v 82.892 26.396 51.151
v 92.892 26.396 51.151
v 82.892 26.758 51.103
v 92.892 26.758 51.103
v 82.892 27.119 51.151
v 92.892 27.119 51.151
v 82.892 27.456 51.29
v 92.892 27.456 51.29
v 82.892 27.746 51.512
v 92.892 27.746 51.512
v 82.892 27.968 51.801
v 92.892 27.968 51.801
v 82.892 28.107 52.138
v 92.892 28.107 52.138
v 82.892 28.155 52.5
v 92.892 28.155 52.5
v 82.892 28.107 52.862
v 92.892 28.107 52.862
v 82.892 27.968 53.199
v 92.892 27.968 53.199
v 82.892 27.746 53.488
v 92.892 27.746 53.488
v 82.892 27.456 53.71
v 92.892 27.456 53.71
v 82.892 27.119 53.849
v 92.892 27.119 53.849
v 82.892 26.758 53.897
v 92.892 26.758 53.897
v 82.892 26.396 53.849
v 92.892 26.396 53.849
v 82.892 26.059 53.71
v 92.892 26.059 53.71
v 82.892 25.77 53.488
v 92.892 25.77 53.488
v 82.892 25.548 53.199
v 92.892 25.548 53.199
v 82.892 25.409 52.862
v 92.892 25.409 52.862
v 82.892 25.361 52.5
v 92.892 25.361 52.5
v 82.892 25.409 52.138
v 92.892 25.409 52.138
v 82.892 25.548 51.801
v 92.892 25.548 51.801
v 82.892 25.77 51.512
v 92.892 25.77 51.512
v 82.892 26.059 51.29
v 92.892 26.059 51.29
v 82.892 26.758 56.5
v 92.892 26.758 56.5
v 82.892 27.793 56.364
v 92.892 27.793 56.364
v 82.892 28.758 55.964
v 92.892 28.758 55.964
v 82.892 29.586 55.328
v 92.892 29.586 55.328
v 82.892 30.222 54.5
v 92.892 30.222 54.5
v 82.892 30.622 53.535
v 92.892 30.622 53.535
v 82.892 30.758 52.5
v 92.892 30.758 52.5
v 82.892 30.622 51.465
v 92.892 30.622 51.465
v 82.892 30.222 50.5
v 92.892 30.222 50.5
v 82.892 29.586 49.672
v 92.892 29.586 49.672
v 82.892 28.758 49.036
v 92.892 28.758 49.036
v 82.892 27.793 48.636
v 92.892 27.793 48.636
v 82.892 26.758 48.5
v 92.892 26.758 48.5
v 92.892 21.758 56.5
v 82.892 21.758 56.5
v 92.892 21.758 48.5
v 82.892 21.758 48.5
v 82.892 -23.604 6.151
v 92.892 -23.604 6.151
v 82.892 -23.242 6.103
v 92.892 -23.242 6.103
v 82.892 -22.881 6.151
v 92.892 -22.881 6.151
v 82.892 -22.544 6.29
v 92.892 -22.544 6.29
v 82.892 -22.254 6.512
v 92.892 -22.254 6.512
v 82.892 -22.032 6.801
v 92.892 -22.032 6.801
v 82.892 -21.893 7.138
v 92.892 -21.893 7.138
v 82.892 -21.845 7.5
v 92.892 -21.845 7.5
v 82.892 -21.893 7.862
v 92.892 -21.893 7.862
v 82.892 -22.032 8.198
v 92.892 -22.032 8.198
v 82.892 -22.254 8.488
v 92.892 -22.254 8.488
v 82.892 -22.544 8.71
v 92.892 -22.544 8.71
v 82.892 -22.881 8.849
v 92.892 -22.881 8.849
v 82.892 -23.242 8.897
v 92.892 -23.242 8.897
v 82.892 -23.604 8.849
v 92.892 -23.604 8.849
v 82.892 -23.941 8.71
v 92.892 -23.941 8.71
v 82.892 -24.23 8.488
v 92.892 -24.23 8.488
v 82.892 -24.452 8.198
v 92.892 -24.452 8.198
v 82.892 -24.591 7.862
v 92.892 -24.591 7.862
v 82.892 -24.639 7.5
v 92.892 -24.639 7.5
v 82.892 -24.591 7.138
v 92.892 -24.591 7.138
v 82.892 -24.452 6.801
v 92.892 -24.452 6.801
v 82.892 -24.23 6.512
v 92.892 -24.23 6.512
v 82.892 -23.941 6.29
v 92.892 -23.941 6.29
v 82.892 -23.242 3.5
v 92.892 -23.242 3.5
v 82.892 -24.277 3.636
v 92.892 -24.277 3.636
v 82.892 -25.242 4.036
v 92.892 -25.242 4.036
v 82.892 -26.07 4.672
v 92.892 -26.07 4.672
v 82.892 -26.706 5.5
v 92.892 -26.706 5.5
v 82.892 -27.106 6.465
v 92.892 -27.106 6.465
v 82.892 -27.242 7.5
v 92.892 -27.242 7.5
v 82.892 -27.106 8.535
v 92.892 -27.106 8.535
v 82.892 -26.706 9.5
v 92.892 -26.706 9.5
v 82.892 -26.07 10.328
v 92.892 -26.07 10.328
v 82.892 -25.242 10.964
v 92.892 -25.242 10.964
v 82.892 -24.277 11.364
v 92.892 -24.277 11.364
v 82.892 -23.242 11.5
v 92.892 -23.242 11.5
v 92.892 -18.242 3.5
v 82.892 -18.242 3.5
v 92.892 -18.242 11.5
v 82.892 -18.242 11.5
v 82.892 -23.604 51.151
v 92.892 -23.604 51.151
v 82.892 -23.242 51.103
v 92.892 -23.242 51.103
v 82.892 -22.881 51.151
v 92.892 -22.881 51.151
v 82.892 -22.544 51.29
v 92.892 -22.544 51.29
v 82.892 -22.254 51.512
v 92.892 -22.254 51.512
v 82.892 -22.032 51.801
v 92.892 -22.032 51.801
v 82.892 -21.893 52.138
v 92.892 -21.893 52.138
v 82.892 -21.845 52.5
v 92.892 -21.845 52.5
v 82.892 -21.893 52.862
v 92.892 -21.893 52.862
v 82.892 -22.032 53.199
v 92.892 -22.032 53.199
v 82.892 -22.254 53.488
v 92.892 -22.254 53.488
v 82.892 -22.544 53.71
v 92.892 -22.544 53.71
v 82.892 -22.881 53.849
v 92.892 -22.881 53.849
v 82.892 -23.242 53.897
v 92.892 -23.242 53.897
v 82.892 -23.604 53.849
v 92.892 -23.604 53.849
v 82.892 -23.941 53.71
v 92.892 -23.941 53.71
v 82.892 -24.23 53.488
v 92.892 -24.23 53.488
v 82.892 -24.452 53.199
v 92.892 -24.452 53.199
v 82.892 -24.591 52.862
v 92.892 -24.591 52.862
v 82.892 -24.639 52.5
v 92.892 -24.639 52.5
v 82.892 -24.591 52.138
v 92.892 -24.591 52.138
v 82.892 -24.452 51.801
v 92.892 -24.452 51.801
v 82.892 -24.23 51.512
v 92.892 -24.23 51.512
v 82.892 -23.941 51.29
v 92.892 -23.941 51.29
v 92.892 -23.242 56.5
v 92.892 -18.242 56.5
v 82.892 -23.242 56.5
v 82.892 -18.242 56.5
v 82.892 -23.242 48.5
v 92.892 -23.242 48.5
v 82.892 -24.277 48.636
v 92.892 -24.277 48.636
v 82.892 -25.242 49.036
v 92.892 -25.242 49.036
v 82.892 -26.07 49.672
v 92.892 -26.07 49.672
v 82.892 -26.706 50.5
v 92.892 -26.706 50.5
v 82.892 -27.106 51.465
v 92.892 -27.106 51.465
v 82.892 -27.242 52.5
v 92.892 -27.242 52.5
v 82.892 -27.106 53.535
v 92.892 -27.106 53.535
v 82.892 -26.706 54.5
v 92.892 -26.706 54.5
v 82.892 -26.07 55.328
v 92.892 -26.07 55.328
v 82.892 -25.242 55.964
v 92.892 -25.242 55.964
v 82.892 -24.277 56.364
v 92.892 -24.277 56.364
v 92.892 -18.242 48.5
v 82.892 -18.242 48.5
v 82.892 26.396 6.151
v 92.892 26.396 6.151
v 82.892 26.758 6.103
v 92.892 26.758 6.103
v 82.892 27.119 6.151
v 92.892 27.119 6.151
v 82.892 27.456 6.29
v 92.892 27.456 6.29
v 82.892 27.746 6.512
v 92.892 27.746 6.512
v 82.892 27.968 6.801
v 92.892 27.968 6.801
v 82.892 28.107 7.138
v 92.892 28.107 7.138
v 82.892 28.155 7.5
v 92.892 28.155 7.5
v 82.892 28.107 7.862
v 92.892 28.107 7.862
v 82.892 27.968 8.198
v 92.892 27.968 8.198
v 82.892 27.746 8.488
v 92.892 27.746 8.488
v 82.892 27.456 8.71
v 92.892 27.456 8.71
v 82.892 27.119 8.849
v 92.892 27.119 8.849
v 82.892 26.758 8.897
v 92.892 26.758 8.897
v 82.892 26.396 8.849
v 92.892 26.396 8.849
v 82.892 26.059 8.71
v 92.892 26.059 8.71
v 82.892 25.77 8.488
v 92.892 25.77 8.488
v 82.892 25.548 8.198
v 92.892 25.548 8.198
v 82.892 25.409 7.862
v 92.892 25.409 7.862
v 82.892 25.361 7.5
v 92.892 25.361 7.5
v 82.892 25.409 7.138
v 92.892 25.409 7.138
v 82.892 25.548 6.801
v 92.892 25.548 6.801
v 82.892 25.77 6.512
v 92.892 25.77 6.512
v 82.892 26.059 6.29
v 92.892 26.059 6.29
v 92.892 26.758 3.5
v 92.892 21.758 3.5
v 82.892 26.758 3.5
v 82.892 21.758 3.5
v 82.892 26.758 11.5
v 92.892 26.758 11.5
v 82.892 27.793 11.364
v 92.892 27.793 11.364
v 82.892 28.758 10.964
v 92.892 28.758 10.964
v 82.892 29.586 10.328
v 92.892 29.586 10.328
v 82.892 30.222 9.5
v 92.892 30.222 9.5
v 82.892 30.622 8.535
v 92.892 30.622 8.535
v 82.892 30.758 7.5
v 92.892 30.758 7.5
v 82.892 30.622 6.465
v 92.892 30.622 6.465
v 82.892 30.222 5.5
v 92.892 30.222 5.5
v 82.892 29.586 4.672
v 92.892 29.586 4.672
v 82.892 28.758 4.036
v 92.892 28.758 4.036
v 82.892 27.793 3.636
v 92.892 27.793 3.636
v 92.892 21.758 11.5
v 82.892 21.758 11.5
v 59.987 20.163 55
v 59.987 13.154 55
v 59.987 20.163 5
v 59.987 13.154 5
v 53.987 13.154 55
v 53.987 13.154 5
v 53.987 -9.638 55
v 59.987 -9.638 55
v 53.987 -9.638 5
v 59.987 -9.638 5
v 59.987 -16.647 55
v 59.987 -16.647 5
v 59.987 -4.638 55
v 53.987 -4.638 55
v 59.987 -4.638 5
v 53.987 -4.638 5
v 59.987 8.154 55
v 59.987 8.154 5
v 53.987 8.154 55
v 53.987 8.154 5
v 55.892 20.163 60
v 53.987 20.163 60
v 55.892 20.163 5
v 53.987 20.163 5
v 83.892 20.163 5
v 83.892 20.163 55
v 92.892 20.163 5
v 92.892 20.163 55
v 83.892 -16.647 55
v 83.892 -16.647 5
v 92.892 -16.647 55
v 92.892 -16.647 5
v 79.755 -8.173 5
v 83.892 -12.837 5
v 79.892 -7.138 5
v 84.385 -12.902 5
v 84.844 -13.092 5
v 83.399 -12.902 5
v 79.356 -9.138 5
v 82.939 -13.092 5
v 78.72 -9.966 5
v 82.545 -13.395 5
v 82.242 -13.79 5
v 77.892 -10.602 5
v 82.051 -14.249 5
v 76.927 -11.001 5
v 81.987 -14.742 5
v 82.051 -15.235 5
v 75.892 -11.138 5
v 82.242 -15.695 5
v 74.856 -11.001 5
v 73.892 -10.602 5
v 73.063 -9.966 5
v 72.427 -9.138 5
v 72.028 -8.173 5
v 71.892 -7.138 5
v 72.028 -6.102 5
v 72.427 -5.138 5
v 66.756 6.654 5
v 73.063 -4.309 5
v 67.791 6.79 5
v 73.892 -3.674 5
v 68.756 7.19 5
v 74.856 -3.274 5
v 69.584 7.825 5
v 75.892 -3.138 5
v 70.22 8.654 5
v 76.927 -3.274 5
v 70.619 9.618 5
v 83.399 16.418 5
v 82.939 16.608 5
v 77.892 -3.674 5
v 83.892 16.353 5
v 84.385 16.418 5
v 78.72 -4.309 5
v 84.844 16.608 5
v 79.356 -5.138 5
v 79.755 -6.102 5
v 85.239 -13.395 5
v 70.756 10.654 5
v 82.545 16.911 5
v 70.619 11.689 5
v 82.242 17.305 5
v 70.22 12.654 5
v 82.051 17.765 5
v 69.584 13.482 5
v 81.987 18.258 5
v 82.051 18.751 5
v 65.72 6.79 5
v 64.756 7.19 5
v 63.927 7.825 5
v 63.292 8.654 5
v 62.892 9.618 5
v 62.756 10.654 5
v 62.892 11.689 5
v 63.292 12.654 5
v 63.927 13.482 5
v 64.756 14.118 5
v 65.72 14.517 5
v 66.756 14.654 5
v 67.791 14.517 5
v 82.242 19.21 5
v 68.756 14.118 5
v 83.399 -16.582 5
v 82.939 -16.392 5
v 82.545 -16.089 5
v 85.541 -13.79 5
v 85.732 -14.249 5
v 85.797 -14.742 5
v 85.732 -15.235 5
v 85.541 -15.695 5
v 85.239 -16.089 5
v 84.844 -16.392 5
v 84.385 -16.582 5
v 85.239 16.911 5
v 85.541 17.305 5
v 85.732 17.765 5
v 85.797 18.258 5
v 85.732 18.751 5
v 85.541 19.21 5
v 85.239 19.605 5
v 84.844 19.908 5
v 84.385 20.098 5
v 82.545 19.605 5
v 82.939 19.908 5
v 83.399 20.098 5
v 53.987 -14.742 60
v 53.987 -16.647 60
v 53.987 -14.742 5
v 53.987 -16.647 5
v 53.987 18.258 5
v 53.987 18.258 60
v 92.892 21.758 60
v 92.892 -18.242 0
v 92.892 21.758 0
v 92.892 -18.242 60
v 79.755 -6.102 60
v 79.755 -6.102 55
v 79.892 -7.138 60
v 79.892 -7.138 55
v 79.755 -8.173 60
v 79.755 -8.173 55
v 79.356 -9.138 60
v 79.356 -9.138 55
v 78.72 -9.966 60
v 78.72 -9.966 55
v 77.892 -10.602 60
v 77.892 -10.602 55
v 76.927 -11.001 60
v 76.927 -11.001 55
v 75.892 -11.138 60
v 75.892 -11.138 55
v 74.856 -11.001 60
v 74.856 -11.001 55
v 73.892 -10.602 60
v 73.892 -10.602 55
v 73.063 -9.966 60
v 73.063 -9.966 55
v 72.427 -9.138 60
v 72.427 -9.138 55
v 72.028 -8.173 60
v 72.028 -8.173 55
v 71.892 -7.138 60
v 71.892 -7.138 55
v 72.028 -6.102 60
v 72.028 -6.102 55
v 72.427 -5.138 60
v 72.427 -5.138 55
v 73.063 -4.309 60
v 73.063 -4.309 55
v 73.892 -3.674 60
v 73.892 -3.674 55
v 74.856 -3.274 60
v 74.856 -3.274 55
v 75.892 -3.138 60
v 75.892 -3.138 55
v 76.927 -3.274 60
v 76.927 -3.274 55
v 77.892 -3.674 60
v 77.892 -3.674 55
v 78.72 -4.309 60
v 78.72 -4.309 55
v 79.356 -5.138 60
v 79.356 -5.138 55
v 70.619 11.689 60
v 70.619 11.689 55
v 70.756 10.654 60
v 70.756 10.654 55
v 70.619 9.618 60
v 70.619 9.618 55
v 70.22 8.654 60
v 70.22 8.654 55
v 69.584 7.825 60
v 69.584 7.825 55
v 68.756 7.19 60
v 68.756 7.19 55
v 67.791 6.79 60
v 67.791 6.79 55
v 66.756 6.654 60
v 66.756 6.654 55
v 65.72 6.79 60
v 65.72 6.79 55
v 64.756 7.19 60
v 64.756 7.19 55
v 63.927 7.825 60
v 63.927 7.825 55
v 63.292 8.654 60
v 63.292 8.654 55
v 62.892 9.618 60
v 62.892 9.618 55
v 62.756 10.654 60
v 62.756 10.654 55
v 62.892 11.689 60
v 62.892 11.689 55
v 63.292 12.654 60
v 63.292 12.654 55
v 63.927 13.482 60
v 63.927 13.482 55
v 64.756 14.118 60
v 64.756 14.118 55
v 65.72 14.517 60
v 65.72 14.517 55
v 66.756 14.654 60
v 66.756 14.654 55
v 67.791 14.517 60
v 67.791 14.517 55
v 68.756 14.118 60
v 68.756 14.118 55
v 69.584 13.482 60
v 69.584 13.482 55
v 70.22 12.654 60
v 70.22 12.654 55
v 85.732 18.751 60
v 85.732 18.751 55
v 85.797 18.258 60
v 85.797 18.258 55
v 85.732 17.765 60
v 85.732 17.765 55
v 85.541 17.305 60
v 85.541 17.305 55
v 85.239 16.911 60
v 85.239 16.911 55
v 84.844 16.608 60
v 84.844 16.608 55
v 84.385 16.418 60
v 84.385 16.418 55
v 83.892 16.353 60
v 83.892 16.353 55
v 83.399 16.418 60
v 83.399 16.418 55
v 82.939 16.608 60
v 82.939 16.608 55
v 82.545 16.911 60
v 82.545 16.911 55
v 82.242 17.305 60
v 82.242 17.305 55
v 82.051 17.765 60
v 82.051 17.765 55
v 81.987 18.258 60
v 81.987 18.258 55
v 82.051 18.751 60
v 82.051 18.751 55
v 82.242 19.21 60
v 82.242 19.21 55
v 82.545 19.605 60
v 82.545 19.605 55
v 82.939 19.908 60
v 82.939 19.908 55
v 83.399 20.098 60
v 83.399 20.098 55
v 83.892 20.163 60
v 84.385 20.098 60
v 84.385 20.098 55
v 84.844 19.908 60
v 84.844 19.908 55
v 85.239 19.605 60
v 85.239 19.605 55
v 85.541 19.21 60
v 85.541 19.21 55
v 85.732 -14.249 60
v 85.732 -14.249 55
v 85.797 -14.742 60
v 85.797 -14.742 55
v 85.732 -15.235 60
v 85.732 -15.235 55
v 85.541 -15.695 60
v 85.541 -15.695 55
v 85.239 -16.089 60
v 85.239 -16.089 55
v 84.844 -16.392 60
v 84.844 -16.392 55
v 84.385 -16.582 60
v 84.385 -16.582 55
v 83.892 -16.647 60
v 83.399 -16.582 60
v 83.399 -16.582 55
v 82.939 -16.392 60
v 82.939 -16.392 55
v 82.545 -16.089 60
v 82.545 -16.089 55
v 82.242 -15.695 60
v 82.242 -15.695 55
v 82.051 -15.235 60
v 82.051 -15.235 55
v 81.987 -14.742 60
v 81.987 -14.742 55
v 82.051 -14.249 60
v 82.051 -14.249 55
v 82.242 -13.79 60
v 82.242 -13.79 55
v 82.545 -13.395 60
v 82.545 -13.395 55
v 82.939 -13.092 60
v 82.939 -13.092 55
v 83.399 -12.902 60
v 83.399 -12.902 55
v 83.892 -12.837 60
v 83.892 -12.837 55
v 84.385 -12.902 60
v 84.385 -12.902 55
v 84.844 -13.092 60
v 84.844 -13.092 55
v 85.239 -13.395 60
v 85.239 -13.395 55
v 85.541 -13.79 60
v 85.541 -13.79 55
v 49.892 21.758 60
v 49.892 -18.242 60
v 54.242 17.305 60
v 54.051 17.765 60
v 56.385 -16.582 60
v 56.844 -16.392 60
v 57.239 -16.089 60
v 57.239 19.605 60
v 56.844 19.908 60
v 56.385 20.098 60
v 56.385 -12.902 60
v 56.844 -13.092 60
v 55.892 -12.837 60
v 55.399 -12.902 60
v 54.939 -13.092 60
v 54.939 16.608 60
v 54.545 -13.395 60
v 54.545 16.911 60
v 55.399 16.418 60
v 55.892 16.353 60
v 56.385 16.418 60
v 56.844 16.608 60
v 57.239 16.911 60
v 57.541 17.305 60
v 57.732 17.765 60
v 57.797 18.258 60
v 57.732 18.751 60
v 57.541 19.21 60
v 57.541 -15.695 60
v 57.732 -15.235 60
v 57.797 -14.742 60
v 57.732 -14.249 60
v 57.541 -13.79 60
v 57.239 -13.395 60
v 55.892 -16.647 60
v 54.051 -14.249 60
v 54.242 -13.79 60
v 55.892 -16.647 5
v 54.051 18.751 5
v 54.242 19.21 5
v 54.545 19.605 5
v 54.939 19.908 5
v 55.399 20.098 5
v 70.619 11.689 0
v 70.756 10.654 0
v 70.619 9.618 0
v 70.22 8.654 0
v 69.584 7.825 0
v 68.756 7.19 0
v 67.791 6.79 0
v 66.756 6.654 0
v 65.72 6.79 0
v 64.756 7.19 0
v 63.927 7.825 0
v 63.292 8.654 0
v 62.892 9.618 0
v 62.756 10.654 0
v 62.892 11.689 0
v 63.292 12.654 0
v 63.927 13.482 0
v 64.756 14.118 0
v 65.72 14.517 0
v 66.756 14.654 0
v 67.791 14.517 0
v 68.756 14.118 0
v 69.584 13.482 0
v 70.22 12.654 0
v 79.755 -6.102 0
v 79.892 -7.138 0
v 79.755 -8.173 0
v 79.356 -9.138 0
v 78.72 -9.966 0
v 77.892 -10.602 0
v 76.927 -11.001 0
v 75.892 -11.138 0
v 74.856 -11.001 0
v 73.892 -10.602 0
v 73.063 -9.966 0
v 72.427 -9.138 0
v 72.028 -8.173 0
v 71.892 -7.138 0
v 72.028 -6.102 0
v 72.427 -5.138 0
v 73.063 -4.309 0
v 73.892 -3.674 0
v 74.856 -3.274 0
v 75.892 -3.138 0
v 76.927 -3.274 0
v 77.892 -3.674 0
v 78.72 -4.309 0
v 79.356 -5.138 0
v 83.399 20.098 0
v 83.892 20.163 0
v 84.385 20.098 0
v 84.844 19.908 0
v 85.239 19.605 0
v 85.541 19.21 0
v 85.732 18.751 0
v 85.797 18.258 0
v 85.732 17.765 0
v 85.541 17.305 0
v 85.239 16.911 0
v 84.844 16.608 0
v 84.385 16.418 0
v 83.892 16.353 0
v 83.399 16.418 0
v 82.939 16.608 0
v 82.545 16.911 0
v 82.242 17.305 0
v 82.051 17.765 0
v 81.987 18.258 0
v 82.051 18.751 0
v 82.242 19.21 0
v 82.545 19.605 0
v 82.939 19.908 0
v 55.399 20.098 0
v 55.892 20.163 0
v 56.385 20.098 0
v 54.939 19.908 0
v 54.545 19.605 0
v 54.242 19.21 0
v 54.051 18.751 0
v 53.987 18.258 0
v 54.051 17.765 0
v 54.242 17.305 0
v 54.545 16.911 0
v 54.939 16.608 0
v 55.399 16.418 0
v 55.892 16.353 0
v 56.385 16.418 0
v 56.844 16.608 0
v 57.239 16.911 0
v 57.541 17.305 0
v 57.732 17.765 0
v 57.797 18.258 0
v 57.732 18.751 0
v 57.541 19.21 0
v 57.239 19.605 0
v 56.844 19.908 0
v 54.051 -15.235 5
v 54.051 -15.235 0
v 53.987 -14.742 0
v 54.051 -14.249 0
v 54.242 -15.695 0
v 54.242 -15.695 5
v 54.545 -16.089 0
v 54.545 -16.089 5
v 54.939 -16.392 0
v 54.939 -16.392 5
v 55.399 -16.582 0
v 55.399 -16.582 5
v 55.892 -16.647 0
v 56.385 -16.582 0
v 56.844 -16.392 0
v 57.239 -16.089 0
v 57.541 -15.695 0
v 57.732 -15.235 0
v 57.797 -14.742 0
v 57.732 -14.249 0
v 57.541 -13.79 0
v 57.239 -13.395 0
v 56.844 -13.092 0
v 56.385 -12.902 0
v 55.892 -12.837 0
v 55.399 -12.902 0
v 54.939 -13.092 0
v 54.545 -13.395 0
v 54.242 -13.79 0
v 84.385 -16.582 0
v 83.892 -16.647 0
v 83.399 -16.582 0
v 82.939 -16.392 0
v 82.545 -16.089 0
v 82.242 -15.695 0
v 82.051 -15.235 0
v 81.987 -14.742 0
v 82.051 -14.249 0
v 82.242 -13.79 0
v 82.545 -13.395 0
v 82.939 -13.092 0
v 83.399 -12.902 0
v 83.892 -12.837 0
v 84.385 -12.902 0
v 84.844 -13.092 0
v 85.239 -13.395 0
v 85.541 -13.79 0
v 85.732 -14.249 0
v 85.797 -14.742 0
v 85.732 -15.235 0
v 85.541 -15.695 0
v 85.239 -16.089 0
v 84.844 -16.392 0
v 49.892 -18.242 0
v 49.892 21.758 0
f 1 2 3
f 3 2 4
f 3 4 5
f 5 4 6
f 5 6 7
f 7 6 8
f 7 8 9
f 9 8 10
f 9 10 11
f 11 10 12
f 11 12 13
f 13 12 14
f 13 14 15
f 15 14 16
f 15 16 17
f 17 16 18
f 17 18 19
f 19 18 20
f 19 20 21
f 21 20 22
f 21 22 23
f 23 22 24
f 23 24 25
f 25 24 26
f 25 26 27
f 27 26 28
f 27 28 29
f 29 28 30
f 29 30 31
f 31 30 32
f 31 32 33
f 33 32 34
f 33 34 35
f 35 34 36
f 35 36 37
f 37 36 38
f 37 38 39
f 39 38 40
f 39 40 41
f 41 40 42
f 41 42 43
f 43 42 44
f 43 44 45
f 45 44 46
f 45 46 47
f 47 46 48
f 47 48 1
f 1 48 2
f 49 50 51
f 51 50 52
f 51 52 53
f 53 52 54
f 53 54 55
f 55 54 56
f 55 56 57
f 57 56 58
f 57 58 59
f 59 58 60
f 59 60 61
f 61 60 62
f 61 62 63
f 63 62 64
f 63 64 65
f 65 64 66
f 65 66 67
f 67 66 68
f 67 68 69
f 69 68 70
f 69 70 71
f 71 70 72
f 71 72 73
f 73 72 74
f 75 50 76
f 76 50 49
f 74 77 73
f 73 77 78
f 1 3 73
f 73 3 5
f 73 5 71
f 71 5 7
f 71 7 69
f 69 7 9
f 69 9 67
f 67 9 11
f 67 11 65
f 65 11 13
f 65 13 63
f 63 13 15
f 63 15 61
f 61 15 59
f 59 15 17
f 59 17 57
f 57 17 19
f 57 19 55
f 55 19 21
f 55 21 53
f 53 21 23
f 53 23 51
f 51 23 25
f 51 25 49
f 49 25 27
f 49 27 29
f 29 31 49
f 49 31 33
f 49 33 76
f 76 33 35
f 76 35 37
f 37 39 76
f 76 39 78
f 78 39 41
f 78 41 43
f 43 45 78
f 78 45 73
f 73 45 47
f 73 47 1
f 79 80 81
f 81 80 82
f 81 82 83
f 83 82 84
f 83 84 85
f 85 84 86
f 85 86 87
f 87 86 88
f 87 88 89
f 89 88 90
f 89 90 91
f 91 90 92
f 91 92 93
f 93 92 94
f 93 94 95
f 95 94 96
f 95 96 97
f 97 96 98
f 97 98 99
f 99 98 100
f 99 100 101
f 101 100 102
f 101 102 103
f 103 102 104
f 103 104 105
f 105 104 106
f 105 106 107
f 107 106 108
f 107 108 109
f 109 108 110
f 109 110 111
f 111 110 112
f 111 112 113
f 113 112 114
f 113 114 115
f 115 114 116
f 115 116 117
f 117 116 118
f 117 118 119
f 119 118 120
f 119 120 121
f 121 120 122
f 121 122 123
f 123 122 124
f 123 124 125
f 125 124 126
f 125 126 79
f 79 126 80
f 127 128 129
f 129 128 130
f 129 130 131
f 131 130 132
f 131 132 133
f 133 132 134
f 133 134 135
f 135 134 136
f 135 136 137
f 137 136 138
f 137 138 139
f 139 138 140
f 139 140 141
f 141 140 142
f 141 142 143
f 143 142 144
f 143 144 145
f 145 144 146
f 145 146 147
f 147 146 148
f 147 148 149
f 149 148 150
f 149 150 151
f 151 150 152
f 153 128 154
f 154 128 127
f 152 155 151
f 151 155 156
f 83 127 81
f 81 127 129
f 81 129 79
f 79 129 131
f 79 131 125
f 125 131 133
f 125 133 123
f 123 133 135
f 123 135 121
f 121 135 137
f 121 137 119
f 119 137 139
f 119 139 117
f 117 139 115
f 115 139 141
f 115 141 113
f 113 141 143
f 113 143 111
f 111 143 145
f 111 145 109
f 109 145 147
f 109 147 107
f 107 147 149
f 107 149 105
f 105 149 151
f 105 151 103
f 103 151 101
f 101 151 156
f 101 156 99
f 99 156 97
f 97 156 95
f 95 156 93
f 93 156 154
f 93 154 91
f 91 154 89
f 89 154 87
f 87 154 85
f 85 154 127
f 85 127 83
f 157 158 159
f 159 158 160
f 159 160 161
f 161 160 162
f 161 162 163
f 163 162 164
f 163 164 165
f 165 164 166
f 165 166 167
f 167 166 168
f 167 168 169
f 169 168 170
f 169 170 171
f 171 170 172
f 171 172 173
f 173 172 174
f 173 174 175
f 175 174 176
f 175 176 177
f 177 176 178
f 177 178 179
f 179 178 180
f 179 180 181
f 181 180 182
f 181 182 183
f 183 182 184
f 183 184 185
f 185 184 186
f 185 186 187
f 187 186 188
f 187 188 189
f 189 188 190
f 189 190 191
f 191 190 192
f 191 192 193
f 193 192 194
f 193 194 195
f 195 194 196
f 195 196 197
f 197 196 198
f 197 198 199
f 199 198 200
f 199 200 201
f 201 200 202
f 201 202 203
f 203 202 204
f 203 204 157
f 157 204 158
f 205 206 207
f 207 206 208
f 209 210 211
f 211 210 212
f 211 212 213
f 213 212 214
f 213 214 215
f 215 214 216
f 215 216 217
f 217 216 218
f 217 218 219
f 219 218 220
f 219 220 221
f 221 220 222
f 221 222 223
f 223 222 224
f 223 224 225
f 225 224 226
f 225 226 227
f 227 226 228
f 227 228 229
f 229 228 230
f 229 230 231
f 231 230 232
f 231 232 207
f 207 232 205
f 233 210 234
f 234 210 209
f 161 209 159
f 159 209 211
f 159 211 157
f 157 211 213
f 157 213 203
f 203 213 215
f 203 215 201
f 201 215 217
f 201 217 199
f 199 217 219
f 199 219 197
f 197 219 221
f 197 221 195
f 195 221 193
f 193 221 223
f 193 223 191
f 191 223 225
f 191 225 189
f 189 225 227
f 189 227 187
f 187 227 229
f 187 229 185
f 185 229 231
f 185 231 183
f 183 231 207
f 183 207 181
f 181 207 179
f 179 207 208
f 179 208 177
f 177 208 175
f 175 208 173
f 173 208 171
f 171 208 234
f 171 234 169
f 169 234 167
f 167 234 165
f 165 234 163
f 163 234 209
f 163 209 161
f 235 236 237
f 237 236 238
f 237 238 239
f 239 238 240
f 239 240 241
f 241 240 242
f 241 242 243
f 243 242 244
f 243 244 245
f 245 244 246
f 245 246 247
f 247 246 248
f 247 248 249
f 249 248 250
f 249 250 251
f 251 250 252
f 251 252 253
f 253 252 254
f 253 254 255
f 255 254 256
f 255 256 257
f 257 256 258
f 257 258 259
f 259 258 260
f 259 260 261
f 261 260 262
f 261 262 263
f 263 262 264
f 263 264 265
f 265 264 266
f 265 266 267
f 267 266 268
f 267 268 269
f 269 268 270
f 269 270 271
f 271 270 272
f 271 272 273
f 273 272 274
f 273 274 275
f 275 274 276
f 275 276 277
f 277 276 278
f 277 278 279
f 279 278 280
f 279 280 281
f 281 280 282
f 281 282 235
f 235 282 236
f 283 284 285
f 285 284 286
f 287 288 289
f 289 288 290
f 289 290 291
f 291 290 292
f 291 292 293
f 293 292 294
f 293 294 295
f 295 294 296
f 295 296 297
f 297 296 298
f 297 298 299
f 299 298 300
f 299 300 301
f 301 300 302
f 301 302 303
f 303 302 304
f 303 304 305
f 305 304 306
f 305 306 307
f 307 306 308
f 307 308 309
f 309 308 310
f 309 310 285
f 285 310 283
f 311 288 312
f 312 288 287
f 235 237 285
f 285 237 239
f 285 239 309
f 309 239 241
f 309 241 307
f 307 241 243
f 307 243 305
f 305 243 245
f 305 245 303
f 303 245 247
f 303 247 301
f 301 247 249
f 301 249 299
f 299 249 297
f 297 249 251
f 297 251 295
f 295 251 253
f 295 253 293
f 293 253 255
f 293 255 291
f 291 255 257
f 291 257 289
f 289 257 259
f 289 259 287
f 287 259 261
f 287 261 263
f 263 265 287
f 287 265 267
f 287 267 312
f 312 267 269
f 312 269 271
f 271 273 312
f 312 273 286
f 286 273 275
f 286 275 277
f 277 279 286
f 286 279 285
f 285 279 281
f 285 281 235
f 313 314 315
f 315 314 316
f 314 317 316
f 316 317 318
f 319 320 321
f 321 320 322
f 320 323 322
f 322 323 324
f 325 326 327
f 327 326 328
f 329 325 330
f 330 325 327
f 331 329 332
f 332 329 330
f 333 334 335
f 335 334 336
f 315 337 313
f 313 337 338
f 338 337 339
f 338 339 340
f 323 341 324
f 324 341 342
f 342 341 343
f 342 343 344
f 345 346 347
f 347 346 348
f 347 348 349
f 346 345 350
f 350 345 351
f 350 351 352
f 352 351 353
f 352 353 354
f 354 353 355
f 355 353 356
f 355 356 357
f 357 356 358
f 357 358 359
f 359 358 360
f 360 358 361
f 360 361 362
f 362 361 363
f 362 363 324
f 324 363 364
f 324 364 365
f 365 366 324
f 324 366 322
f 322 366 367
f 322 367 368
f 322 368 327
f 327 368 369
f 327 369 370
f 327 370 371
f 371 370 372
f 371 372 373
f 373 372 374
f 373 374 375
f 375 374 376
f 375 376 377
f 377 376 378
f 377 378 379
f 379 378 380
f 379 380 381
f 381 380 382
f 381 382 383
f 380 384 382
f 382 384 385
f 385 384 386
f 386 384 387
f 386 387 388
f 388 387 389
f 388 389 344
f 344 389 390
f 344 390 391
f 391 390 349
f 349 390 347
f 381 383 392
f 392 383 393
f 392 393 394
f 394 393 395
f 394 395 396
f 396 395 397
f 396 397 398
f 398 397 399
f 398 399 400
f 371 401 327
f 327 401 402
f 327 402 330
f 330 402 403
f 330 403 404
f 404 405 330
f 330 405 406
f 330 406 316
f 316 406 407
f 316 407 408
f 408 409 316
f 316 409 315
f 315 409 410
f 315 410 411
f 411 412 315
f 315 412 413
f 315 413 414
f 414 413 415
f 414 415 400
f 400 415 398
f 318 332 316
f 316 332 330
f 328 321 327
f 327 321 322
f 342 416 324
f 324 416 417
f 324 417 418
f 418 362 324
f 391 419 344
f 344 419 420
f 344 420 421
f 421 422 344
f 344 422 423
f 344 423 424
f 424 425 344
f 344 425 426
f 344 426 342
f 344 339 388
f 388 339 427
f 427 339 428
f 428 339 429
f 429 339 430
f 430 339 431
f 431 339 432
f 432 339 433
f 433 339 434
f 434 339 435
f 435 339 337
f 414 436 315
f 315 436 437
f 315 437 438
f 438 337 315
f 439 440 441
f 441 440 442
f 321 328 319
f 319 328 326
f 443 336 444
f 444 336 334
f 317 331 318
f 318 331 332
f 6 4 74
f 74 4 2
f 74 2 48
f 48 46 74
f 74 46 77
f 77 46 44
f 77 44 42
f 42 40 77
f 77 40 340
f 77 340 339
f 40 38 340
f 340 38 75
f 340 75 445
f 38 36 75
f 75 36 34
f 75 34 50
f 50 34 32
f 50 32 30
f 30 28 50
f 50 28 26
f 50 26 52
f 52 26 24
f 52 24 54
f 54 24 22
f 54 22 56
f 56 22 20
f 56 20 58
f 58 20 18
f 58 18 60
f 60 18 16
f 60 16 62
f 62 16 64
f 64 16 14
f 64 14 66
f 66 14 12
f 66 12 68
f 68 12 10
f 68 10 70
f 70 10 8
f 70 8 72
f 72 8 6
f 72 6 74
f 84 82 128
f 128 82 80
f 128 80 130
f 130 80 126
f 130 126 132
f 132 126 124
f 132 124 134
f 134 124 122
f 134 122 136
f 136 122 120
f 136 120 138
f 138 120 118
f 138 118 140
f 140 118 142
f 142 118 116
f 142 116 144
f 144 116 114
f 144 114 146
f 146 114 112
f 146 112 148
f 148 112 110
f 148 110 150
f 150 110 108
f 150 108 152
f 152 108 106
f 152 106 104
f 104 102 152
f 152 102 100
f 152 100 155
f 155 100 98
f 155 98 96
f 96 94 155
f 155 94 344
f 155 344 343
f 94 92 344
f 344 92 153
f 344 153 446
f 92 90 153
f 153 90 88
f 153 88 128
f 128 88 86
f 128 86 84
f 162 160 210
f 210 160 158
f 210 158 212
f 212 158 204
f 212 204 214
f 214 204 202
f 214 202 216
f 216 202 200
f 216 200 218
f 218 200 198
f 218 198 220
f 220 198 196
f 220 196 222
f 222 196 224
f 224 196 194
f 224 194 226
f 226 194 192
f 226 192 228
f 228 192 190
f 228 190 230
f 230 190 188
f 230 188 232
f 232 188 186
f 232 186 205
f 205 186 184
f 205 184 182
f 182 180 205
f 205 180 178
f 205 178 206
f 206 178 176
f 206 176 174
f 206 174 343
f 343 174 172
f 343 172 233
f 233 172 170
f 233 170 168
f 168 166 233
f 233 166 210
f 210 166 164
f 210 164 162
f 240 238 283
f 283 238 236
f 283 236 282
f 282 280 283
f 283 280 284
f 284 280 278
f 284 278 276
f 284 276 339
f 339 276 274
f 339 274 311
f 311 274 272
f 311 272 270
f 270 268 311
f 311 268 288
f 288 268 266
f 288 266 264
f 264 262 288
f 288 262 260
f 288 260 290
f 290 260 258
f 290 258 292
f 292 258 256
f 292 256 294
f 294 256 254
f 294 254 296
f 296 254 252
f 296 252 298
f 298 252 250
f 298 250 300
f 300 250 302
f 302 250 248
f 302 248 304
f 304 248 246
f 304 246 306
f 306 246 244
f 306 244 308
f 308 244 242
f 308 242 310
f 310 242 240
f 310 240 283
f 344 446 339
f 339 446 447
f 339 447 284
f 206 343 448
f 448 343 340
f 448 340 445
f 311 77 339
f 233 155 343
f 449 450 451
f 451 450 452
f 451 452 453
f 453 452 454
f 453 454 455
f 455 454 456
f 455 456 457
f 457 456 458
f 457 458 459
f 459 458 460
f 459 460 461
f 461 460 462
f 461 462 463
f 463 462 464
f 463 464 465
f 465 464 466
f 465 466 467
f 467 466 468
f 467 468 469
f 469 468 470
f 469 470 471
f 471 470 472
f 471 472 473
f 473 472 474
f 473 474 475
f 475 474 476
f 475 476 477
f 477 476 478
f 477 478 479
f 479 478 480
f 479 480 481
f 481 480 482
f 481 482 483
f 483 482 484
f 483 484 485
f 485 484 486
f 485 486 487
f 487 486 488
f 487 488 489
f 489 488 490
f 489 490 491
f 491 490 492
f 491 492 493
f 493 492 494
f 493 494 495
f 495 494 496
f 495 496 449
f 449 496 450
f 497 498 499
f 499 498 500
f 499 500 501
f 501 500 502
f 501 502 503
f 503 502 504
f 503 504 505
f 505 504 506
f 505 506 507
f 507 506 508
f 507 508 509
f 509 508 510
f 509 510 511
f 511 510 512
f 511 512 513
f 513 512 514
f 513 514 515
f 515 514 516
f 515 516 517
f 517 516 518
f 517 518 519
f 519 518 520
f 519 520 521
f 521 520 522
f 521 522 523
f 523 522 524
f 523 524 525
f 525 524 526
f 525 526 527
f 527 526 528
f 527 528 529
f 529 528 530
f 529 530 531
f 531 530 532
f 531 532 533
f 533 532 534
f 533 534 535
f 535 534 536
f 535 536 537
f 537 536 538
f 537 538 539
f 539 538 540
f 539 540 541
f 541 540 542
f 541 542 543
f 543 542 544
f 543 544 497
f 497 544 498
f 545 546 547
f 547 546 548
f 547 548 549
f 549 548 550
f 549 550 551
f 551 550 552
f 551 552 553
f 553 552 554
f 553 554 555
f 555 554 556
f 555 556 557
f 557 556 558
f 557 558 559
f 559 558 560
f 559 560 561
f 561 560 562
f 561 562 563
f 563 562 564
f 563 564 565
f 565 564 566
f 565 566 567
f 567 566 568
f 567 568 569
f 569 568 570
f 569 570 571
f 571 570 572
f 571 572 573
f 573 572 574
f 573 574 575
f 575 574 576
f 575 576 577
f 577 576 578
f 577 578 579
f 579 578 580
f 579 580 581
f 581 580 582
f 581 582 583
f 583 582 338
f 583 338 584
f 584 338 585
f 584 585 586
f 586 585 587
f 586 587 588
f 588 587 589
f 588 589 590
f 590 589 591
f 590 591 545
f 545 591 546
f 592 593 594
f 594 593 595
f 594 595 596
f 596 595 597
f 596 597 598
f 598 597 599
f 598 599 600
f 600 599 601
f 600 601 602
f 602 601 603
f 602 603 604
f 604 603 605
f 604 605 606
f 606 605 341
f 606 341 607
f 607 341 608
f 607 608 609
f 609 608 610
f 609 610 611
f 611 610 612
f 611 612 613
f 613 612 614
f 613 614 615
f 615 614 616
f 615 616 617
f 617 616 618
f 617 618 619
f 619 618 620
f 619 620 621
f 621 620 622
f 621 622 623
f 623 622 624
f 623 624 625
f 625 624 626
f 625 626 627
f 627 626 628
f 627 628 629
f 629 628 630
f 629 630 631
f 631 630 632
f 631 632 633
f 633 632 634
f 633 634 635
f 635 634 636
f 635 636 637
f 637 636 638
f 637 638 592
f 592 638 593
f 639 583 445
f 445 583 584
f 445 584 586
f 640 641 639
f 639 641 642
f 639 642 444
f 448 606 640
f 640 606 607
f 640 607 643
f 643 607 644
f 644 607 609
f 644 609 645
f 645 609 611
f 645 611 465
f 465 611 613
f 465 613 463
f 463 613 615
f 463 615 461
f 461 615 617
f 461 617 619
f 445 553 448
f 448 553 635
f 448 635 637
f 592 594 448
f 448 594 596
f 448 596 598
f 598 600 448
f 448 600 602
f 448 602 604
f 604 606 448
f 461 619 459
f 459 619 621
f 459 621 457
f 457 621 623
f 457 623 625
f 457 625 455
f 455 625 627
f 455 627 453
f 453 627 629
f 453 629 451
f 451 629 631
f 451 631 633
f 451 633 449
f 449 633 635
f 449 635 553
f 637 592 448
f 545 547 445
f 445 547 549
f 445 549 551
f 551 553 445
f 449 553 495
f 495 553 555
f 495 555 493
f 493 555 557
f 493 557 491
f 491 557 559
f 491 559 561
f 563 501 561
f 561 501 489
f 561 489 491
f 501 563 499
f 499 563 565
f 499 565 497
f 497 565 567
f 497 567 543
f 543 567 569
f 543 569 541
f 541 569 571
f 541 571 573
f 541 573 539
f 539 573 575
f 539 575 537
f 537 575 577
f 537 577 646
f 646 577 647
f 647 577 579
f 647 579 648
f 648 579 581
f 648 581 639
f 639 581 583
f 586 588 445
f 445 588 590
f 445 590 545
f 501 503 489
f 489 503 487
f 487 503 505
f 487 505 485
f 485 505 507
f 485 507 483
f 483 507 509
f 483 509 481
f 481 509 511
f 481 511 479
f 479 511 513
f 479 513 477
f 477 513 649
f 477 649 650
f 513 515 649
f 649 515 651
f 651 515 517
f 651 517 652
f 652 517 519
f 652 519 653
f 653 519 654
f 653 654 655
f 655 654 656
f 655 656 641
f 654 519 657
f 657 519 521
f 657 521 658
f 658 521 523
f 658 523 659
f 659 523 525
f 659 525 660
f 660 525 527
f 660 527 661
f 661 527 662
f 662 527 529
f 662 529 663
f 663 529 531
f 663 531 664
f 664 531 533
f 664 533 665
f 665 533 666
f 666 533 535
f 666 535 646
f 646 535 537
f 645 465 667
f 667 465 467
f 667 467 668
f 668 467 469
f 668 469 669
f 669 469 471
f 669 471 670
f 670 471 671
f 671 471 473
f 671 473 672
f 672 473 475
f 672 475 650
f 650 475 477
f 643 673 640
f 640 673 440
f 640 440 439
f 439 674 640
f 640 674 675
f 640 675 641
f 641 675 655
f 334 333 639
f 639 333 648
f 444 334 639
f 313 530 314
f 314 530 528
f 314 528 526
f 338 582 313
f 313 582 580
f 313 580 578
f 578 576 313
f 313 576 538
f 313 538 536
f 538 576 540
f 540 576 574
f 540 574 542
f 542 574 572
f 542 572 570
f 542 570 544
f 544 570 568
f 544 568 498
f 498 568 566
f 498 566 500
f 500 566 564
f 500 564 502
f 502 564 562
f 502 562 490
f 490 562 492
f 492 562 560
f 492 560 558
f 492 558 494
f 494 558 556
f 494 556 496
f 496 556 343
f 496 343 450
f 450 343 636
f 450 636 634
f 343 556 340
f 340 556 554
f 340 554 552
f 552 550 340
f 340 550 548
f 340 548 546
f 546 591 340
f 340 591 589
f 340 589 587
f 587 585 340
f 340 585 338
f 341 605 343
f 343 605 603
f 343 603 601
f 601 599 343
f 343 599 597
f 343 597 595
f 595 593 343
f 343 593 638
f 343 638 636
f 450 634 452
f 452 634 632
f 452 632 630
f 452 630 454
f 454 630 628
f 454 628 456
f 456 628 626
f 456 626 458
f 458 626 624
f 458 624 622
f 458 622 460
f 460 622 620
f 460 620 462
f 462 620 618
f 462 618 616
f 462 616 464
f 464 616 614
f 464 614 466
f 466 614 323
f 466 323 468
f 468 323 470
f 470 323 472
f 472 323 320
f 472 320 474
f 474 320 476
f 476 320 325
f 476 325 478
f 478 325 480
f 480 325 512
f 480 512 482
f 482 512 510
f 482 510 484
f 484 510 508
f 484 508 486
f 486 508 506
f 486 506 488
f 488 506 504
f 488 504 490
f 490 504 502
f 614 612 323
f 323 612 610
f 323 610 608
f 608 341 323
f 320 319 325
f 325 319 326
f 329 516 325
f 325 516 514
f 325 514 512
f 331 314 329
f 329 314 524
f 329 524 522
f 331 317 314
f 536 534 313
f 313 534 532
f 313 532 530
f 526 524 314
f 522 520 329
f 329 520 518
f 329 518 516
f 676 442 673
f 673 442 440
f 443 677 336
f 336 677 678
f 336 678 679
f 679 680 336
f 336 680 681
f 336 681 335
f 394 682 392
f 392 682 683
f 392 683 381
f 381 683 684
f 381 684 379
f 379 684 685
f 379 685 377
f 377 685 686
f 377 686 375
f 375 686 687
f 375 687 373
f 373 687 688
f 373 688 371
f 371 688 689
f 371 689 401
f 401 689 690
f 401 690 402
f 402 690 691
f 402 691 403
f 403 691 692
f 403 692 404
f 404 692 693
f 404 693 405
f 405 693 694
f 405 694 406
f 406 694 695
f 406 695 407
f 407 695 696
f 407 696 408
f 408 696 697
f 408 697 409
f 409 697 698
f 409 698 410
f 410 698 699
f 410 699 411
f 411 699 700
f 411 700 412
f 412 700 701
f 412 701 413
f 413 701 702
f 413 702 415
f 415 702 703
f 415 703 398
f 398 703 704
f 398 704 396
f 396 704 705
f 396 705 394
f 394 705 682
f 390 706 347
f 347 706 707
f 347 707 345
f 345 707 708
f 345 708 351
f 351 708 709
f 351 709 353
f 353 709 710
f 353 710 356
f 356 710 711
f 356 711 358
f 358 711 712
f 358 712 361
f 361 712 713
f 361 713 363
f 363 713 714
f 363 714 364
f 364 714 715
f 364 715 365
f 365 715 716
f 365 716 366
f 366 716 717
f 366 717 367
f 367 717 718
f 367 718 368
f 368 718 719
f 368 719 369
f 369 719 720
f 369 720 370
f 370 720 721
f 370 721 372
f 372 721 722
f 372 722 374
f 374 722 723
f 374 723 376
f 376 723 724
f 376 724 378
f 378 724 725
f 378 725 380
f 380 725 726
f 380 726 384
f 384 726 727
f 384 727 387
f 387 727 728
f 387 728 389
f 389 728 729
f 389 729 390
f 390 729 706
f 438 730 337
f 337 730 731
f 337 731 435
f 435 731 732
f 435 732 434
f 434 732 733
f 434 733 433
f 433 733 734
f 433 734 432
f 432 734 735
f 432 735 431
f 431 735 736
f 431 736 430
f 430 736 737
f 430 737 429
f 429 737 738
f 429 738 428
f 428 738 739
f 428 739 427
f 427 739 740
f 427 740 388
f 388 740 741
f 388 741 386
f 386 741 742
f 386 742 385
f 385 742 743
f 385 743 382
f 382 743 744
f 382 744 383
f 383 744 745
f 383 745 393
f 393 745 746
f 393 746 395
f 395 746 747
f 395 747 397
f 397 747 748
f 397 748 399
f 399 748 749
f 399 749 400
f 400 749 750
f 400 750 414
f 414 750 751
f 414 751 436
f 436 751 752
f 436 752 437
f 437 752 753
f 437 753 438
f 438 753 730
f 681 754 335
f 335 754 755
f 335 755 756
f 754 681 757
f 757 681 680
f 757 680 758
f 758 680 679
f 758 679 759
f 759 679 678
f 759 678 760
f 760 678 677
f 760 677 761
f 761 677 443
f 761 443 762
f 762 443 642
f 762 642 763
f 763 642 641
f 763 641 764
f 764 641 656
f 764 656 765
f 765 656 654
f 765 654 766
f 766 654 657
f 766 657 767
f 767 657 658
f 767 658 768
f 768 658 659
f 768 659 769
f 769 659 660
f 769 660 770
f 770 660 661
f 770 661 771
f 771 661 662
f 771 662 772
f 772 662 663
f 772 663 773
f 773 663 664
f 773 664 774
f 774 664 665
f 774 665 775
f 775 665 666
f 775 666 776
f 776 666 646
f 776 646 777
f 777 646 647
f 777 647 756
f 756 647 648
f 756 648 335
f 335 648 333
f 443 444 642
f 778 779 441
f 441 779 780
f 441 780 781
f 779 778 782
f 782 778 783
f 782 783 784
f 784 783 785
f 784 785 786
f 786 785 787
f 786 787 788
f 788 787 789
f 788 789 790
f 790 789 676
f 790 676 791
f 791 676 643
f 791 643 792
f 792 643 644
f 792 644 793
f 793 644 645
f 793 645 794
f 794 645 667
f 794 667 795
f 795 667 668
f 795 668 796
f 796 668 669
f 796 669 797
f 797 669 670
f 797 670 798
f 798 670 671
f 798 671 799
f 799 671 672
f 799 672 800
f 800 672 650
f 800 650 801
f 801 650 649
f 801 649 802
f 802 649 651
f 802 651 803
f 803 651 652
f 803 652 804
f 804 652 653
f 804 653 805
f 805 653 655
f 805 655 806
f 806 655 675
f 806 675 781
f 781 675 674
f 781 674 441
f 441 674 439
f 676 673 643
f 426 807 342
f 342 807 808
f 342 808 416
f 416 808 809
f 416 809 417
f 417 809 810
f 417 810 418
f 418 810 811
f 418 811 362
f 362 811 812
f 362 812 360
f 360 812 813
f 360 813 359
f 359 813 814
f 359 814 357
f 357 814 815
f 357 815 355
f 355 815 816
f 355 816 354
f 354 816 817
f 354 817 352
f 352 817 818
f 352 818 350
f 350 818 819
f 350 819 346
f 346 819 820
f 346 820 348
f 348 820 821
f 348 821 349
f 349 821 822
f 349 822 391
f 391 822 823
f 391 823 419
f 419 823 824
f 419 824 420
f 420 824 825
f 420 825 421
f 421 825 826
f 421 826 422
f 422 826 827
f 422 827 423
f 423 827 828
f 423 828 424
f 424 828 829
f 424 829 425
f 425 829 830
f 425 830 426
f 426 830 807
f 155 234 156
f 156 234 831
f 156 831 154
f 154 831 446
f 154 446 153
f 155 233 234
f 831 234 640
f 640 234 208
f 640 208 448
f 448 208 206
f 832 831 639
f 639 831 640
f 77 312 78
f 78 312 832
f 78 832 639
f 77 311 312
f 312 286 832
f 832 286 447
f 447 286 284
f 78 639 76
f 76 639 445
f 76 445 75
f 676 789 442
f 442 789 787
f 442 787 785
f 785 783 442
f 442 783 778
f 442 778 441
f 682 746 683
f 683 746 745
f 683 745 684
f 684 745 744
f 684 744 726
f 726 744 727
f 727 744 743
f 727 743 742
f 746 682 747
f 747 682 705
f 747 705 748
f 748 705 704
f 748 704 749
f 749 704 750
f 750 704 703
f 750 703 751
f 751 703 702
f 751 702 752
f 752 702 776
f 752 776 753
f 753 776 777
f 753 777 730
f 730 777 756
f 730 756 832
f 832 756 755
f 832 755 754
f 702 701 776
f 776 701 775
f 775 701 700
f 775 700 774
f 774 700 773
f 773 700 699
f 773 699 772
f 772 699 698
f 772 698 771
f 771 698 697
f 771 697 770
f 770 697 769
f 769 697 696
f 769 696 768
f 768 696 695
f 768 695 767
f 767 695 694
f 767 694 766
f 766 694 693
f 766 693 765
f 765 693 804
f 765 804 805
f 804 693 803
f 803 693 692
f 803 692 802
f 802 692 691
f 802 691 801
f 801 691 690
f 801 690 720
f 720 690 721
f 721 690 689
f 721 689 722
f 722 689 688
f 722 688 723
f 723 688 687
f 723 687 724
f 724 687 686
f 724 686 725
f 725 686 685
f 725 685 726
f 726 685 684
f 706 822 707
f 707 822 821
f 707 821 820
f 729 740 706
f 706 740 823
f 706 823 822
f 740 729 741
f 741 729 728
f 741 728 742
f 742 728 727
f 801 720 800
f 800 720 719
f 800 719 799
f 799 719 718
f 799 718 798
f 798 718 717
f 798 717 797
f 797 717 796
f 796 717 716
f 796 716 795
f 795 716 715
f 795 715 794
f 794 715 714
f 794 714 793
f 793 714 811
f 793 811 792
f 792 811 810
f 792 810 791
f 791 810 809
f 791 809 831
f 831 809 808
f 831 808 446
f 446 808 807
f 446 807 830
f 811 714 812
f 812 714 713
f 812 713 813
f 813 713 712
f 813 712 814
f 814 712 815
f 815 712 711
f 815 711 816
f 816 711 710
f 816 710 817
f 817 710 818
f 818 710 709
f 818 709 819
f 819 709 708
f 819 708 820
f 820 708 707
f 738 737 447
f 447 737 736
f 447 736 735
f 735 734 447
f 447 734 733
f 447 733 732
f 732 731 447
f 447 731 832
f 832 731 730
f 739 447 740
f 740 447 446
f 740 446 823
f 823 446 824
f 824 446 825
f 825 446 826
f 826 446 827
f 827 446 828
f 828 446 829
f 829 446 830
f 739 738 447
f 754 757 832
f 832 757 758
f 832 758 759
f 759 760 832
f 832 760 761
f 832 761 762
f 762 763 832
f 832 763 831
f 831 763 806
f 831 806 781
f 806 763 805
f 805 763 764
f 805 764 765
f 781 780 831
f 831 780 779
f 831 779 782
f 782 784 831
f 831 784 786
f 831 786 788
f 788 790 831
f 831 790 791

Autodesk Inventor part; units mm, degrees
ref_plane "YZ Plane" through (0, 0, 0) normal (1, 0, 0) x (0, 1, 0)
ref_plane "XZ Plane" through (0, 0, 0) normal (0, 1, 0) x (-1, 0, 0)
ref_plane "XY Plane" through (0, 0, 0) normal (0, 0, 1) x (1, 0, 0)
ref_plane "Work Plane1" through (0, 0, 0) normal (0, 0, 1) x (1, 0, 0)
sketch "Sketch1" plane through (0, 0, 0) normal (0, 0, 1) x (1, 0, 0)
  circle A0 centre (55.8916, -14.7421) radius 1.397 construction
  circle A1 centre (83.8916, 18.2579) radius 1.397 construction
  circle A2 centre (83.8916, -14.7421) radius 1.397 construction
  circle A3 centre (55.8916, 18.2579) radius 1.397 construction
  circle A4 centre (-68.9014, -27.1927) radius 1.905 construction
  circle A5 centre (69.9706, -24.3098) radius 1.905 construction
  arc A6 (-6.1836, 105.2542) -> (-60.0665, 55.7083) centre (-0.9442, 45.4834) ccw construction
  arc A7 (-60.0665, 55.7083) -> (-61.034, 47.7681) centre (-60.6164, 51.7463) ccw construction
  line L0 (-61.034, 47.7681) -> (-68.4839, -23.2145) construction
  arc A8 (-68.4839, -23.2145) -> (-69.2051, -31.1811) centre (-68.9014, -27.1927) ccw construction
  arc A9 (-69.2051, -31.1811) -> (-1.8309, -104.453) centre (0.7162, -34.4994) ccw construction
  arc A10 (-1.8309, -104.453) -> (6.1641, -104.2871) centre (2.169, -104.4843) ccw construction
  arc A11 (6.1641, -104.2871) -> (70.4395, -28.2823) centre (0.7162, -34.4994) ccw construction
  arc A12 (70.4395, -28.2823) -> (69.3883, -20.3524) centre (69.9706, -24.3098) ccw construction
  line L1 (69.3883, -20.3524) -> (69.0778, -18.2421) construction
  line L2 (87.8916, -18.2421) -> (69.0778, -18.2421) construction
  line L3 (87.8916, 21.7579) -> (87.8916, -18.2421) construction
  line L4 (63.1925, 21.7579) -> (87.8916, 21.7579) construction
  line L5 (63.1925, 21.7579) -> (58.999, 50.2599) construction
  arc A13 (58.999, 50.2599) -> (57.7029, 58.1531) centre (58.4167, 54.2173) ccw construction
  arc A14 (57.7029, 58.1531) -> (1.8102, 105.4201) centre (-0.9442, 45.4834) ccw construction
  arc A15 (1.8102, 105.4201) -> (-6.1836, 105.2542) centre (-2.1895, 105.4705) ccw construction
  circle A16 centre (58.4167, 54.2173) radius 1.905 construction
  circle A17 centre (-2.1895, 105.4705) radius 1.905 construction
  circle A18 centre (-60.6164, 51.7463) radius 1.905 construction
  circle A19 centre (2.169, -104.4843) radius 1.905 construction
  circle A20 centre (-0.9442, 45.4834) radius 6.75 construction
  circle A21 centre (75.8916, -7.1378) radius 4 projected
  circle A22 centre (66.7556, 10.6536) radius 4 projected
  line L6 (87.8916, -18.2421) -> (87.8916, 21.7579)
  line L7 (87.8916, 21.7579) -> (49.8916, 21.7579)
  line L8 (49.8916, 21.7579) -> (49.8916, -18.2421)
  line L9 (49.8916, -18.2421) -> (87.8916, -18.2421)
  circle A23 centre (83.8916, -14.7421) radius 1.905
  circle A24 centre (55.8916, -14.7421) radius 1.905
  circle A25 centre (55.8916, 18.2579) radius 1.905
  circle A26 centre (83.8916, 18.2579) radius 1.905
  point P0 (0, 0)
  dimension "d0" = 3.81
  dimension "d1" = 38
extrude "Extrusion1" add sketch "Sketch1" along normal blind 5
sketch "Sketch2" plane through (0, 0, 5) normal (0, 0, 1) x (1, 0, 0)
  circle A0 centre (66.7556, 10.6536) radius 4 construction
  circle A1 centre (75.8916, -7.1378) radius 4 construction
  circle A2 centre (83.8916, 18.2579) radius 1.905 construction
  circle A3 centre (55.8916, 18.2579) radius 1.905 construction
  circle A4 centre (55.8916, -14.7421) radius 1.905 construction
  circle A5 centre (83.8916, -14.7421) radius 1.905 construction
  line L0 (87.8916, -18.2421) -> (87.8916, 21.7579) construction
  line L1 (87.8916, 21.7579) -> (49.8916, 21.7579) construction
  line L2 (49.8916, 21.7579) -> (49.8916, -18.2421) construction
  line L3 (49.8916, -18.2421) -> (87.8916, -18.2421) construction
  line L4 (87.8916, -18.2421) -> (49.8916, -18.2421)
  line L5 (49.8916, -18.2421) -> (49.8916, -16.6471)
  line L6 (49.8916, -16.6471) -> (87.8916, -16.6471)
  line L7 (87.8916, -16.6471) -> (87.8916, -18.2421)
  line L8 (87.8916, 21.7579) -> (49.8916, 21.7579) projected
  line L9 (87.8916, 21.7579) -> (49.8916, 21.7579)
  line L10 (49.8916, 21.7579) -> (49.8916, 20.1629)
  line L11 (49.8916, 20.1629) -> (87.8916, 20.1629)
  line L12 (87.8916, 20.1629) -> (87.8916, 21.7579)
  line L13 (49.8916, -16.6471) -> (53.9866, -16.6471)
  line L14 (53.9866, -16.6471) -> (53.9866, 20.1629)
  line L15 (53.9866, 20.1629) -> (49.8916, 20.1629)
  line L16 (49.8916, 20.1629) -> (49.8916, -16.6471)
  circle A6 centre (55.8916, -14.7421) radius 1.905 projected
  point P0 (0, 0)
extrude "Extrusion2" add sketch "Sketch2" along normal blind 50 contours L4 L5 L6 L7 | L16 L11 L14 L6 | L10 L8 L12 L11
sketch "Sketch3" plane through (0, 0, 55) normal (0, 0, 1) x (1, 0, 0)
  line L0 (55.8916, -16.6471) -> (83.8916, -16.6471) projected
  circle A0 centre (83.8916, -14.7421) radius 1.905 projected
  line L1 (83.8916, -16.6471) -> (87.8916, -16.6471) projected
  line L2 (87.8916, -16.6471) -> (87.8916, 20.1629) projected
  line L3 (87.8916, 20.1629) -> (83.8916, 20.1629) projected
  circle A1 centre (83.8916, 18.2579) radius 1.905 projected
  line L4 (83.8916, 20.1629) -> (55.8916, 20.1629) projected
  arc A2 (53.9866, 18.2579) -> (55.8916, 20.1629) centre (55.8916, 18.2579) ccw projected
  line L5 (53.9866, 18.2579) -> (53.9866, -14.7421) projected
  arc A3 (55.8916, -16.6471) -> (53.9866, -14.7421) centre (55.8916, -14.7421) ccw projected
  circle A4 centre (66.7556, 10.6536) radius 4 projected
  circle A5 centre (75.8916, -7.1378) radius 4 projected
  line L6 (53.9866, 20.1629) -> (87.8916, 20.1629) projected
  line L7 (87.8916, 20.1629) -> (87.8916, 21.7579) projected
  line L8 (87.8916, 21.7579) -> (49.8916, 21.7579) projected
  line L9 (49.8916, 21.7579) -> (49.8916, -18.2421) projected
  line L10 (49.8916, -18.2421) -> (87.8916, -18.2421) projected
  line L11 (87.8916, -18.2421) -> (87.8916, -16.6471) projected
  line L12 (87.8916, -16.6471) -> (53.9866, -16.6471) projected
  line L13 (53.9866, -16.6471) -> (53.9866, 20.1629) projected
  point P0 (0, 0)
extrude "Extrusion3" add sketch "Sketch3" along normal blind 5 contours A3 L5 A2 L4 L3 L2 L1 L0 | L0 L1 L11 L10 L9 L8 L7 L3 L4 L6 L13 L5 L12
sketch "Sketch4" plane through (87.8916, -18.2421, 0) normal (1, 0, 0) x (0, 0, -1)
  line L0 (-5, 38.405) -> (-55, 38.405) projected
  line L1 (-5, 1.595) -> (-5, 38.405) projected
  line L2 (-5, 1.595) -> (-55, 1.595) projected
  line L3 (-55, 1.595) -> (-55, 38.405) projected
  line L4 (0, 40) -> (-60, 40) projected
  line L5 (-60, 0) -> (-60, 40) projected
  line L6 (0, 0) -> (-60, 0) projected
  line L7 (0, 0) -> (0, 40) projected
  point P0 (0, 18.2421)
extrude "Extrusion4" add sketch "Sketch4" along normal blind 5
sketch "Sketch5" plane through (0, 0, 5) normal (0, 0, 1) x (1, 0, 0)
  line L0 (55.8916, -16.6471) -> (83.8916, -16.6471) projected
  circle A0 centre (83.8916, -14.7421) radius 1.905 projected
  line L1 (83.8916, -16.6471) -> (92.8916, -16.6471) projected
  line L2 (92.8916, 20.1629) -> (92.8916, -16.6471) projected
  line L3 (92.8916, 20.1629) -> (83.8916, 20.1629) projected
  circle A1 centre (83.8916, 18.2579) radius 1.905 projected
  line L4 (83.8916, 20.1629) -> (55.8916, 20.1629) projected
  arc A2 (53.9866, 18.2579) -> (55.8916, 20.1629) centre (55.8916, 18.2579) ccw projected
  line L5 (53.9866, 18.2579) -> (53.9866, -14.7421) projected
  arc A3 (55.8916, -16.6471) -> (53.9866, -14.7421) centre (55.8916, -14.7421) ccw projected
  circle A4 centre (66.7556, 10.6536) radius 4 projected
  circle A5 centre (75.8916, -7.1378) radius 4 projected
  line L6 (59.9866, 20.1629) -> (59.9866, 13.1536)
  line L7 (59.9866, 13.1536) -> (53.9866, 13.1536)
  line L8 (53.9866, 8.1536) -> (59.9866, 8.1536)
  line L9 (59.9866, 8.1536) -> (59.9866, -4.6378)
  line L10 (59.9866, -4.6378) -> (53.9866, -4.6378)
  line L11 (53.9866, -9.6378) -> (59.9866, -9.6378)
  line L12 (59.9866, -9.6378) -> (59.9866, -16.6471)
  line L13 (59.9866, -9.6378) -> (59.9866, -4.6378) construction
  line L14 (59.9866, 8.1536) -> (59.9866, 13.1536) construction
  point P0 (0, 0)
  point P1 (59.9866, -7.1378)
  point P2 (59.9866, 10.6536)
  dimension "d10" = 5
  dimension "d11" = 6
  dimension "d12" = 5
extrude "Extrusion5" add sketch "Sketch5" along normal up to next contours A3 L5 L11 L12 L0 | L5 L8 L9 L10 | L5 A2 L4 L6 L7
sketch "Sketch6" plane through (92.8916, -18.2421, 0) normal (1, 0, 0) x (0, 0, -1)
  line L0 (-5, 38.405) -> (-5, 1.595) construction
  line L1 (-5, 1.595) -> (-55, 1.595) construction
  line L2 (-55, 1.595) -> (-55, 38.405) construction
  line L3 (-55, 38.405) -> (-5, 38.405) construction
  line L4 (0, 40) -> (-60, 40) construction
  line L5 (-60, 40) -> (-60, 0) construction
  line L6 (-60, 0) -> (0, 0) construction
  line L7 (0, 0) -> (0, 40) construction
  line L8 (-60, 0) -> (0, 0) construction
  line L9 (-30, 0) -> (-30, 40) construction
  line L10 (-52.5, 45) -> (-7.5, 45) construction
  line L11 (-7.5, 45) -> (-7.5, -5) construction
  line L12 (-7.5, -5) -> (-52.5, -5) construction
  line L13 (-52.5, -5) -> (-52.5, 45) construction
  line L14 (-52.5, 45) -> (-7.5, -5) construction
  line L15 (-7.5, 45) -> (-52.5, -5) construction
  circle A0 centre (-7.5, -5) radius 1.397
  circle A1 centre (-52.5, -5) radius 1.397
  circle A2 centre (-7.5, 45) radius 1.397
  circle A3 centre (-52.5, 45) radius 1.397
  line L16 (-7.5, -5) -> (-7.5, 0) construction
  line L17 (-11.5, -5) -> (-11.5, 0)
  line L18 (-3.5, 0) -> (-3.5, -5)
  arc A4 (-11.5, -5) -> (-3.5, -5) centre (-7.5, -5) ccw
  arc A5 (-3.5, 0) -> (-11.5, 0) centre (-7.5, 0) ccw construction
  line L19 (-52.5, -5) -> (-52.5, 0) construction
  line L20 (-48.5, -5) -> (-48.5, 0)
  line L21 (-56.5, 0) -> (-56.5, -5)
  arc A6 (-56.5, -5) -> (-48.5, -5) centre (-52.5, -5) ccw
  arc A7 (-48.5, 0) -> (-56.5, 0) centre (-52.5, 0) ccw construction
  line L22 (-52.5, 45) -> (-52.5, 40) construction
  line L23 (-48.5, 45) -> (-48.5, 40)
  line L24 (-56.5, 40) -> (-56.5, 45)
  arc A8 (-48.5, 45) -> (-56.5, 45) centre (-52.5, 45) ccw
  arc A9 (-56.5, 40) -> (-48.5, 40) centre (-52.5, 40) ccw construction
  line L25 (-7.5, 45) -> (-7.5, 40) construction
  line L26 (-11.5, 45) -> (-11.5, 40)
  line L27 (-3.5, 40) -> (-3.5, 45)
  arc A10 (-3.5, 45) -> (-11.5, 45) centre (-7.5, 45) ccw
  arc A11 (-11.5, 40) -> (-3.5, 40) centre (-7.5, 40) ccw construction
  line L28 (-3.5, 0) -> (-11.5, 0)
  line L29 (-56.5, 0) -> (-48.5, 0)
  line L30 (-56.5, 40) -> (-48.5, 40)
  line L31 (0, 40) -> (-60, 40) projected
  line L32 (-11.5, 40) -> (-3.5, 40)
  point P0 (0, 18.2421)
  point P1 (-30, 20)
  point P2 (-7.5, -2.5)
  point P3 (-52.5, -2.5)
  point P4 (-52.5, 42.5)
  point P5 (-7.5, 42.5)
  dimension "d15" = 2.794
  dimension "d16" = 50
  dimension "d17" = 45
  dimension "d18" = 4
extrude "Extrusion6" add sketch "Sketch6" against normal blind 10
properties part number "shifter box 1"
